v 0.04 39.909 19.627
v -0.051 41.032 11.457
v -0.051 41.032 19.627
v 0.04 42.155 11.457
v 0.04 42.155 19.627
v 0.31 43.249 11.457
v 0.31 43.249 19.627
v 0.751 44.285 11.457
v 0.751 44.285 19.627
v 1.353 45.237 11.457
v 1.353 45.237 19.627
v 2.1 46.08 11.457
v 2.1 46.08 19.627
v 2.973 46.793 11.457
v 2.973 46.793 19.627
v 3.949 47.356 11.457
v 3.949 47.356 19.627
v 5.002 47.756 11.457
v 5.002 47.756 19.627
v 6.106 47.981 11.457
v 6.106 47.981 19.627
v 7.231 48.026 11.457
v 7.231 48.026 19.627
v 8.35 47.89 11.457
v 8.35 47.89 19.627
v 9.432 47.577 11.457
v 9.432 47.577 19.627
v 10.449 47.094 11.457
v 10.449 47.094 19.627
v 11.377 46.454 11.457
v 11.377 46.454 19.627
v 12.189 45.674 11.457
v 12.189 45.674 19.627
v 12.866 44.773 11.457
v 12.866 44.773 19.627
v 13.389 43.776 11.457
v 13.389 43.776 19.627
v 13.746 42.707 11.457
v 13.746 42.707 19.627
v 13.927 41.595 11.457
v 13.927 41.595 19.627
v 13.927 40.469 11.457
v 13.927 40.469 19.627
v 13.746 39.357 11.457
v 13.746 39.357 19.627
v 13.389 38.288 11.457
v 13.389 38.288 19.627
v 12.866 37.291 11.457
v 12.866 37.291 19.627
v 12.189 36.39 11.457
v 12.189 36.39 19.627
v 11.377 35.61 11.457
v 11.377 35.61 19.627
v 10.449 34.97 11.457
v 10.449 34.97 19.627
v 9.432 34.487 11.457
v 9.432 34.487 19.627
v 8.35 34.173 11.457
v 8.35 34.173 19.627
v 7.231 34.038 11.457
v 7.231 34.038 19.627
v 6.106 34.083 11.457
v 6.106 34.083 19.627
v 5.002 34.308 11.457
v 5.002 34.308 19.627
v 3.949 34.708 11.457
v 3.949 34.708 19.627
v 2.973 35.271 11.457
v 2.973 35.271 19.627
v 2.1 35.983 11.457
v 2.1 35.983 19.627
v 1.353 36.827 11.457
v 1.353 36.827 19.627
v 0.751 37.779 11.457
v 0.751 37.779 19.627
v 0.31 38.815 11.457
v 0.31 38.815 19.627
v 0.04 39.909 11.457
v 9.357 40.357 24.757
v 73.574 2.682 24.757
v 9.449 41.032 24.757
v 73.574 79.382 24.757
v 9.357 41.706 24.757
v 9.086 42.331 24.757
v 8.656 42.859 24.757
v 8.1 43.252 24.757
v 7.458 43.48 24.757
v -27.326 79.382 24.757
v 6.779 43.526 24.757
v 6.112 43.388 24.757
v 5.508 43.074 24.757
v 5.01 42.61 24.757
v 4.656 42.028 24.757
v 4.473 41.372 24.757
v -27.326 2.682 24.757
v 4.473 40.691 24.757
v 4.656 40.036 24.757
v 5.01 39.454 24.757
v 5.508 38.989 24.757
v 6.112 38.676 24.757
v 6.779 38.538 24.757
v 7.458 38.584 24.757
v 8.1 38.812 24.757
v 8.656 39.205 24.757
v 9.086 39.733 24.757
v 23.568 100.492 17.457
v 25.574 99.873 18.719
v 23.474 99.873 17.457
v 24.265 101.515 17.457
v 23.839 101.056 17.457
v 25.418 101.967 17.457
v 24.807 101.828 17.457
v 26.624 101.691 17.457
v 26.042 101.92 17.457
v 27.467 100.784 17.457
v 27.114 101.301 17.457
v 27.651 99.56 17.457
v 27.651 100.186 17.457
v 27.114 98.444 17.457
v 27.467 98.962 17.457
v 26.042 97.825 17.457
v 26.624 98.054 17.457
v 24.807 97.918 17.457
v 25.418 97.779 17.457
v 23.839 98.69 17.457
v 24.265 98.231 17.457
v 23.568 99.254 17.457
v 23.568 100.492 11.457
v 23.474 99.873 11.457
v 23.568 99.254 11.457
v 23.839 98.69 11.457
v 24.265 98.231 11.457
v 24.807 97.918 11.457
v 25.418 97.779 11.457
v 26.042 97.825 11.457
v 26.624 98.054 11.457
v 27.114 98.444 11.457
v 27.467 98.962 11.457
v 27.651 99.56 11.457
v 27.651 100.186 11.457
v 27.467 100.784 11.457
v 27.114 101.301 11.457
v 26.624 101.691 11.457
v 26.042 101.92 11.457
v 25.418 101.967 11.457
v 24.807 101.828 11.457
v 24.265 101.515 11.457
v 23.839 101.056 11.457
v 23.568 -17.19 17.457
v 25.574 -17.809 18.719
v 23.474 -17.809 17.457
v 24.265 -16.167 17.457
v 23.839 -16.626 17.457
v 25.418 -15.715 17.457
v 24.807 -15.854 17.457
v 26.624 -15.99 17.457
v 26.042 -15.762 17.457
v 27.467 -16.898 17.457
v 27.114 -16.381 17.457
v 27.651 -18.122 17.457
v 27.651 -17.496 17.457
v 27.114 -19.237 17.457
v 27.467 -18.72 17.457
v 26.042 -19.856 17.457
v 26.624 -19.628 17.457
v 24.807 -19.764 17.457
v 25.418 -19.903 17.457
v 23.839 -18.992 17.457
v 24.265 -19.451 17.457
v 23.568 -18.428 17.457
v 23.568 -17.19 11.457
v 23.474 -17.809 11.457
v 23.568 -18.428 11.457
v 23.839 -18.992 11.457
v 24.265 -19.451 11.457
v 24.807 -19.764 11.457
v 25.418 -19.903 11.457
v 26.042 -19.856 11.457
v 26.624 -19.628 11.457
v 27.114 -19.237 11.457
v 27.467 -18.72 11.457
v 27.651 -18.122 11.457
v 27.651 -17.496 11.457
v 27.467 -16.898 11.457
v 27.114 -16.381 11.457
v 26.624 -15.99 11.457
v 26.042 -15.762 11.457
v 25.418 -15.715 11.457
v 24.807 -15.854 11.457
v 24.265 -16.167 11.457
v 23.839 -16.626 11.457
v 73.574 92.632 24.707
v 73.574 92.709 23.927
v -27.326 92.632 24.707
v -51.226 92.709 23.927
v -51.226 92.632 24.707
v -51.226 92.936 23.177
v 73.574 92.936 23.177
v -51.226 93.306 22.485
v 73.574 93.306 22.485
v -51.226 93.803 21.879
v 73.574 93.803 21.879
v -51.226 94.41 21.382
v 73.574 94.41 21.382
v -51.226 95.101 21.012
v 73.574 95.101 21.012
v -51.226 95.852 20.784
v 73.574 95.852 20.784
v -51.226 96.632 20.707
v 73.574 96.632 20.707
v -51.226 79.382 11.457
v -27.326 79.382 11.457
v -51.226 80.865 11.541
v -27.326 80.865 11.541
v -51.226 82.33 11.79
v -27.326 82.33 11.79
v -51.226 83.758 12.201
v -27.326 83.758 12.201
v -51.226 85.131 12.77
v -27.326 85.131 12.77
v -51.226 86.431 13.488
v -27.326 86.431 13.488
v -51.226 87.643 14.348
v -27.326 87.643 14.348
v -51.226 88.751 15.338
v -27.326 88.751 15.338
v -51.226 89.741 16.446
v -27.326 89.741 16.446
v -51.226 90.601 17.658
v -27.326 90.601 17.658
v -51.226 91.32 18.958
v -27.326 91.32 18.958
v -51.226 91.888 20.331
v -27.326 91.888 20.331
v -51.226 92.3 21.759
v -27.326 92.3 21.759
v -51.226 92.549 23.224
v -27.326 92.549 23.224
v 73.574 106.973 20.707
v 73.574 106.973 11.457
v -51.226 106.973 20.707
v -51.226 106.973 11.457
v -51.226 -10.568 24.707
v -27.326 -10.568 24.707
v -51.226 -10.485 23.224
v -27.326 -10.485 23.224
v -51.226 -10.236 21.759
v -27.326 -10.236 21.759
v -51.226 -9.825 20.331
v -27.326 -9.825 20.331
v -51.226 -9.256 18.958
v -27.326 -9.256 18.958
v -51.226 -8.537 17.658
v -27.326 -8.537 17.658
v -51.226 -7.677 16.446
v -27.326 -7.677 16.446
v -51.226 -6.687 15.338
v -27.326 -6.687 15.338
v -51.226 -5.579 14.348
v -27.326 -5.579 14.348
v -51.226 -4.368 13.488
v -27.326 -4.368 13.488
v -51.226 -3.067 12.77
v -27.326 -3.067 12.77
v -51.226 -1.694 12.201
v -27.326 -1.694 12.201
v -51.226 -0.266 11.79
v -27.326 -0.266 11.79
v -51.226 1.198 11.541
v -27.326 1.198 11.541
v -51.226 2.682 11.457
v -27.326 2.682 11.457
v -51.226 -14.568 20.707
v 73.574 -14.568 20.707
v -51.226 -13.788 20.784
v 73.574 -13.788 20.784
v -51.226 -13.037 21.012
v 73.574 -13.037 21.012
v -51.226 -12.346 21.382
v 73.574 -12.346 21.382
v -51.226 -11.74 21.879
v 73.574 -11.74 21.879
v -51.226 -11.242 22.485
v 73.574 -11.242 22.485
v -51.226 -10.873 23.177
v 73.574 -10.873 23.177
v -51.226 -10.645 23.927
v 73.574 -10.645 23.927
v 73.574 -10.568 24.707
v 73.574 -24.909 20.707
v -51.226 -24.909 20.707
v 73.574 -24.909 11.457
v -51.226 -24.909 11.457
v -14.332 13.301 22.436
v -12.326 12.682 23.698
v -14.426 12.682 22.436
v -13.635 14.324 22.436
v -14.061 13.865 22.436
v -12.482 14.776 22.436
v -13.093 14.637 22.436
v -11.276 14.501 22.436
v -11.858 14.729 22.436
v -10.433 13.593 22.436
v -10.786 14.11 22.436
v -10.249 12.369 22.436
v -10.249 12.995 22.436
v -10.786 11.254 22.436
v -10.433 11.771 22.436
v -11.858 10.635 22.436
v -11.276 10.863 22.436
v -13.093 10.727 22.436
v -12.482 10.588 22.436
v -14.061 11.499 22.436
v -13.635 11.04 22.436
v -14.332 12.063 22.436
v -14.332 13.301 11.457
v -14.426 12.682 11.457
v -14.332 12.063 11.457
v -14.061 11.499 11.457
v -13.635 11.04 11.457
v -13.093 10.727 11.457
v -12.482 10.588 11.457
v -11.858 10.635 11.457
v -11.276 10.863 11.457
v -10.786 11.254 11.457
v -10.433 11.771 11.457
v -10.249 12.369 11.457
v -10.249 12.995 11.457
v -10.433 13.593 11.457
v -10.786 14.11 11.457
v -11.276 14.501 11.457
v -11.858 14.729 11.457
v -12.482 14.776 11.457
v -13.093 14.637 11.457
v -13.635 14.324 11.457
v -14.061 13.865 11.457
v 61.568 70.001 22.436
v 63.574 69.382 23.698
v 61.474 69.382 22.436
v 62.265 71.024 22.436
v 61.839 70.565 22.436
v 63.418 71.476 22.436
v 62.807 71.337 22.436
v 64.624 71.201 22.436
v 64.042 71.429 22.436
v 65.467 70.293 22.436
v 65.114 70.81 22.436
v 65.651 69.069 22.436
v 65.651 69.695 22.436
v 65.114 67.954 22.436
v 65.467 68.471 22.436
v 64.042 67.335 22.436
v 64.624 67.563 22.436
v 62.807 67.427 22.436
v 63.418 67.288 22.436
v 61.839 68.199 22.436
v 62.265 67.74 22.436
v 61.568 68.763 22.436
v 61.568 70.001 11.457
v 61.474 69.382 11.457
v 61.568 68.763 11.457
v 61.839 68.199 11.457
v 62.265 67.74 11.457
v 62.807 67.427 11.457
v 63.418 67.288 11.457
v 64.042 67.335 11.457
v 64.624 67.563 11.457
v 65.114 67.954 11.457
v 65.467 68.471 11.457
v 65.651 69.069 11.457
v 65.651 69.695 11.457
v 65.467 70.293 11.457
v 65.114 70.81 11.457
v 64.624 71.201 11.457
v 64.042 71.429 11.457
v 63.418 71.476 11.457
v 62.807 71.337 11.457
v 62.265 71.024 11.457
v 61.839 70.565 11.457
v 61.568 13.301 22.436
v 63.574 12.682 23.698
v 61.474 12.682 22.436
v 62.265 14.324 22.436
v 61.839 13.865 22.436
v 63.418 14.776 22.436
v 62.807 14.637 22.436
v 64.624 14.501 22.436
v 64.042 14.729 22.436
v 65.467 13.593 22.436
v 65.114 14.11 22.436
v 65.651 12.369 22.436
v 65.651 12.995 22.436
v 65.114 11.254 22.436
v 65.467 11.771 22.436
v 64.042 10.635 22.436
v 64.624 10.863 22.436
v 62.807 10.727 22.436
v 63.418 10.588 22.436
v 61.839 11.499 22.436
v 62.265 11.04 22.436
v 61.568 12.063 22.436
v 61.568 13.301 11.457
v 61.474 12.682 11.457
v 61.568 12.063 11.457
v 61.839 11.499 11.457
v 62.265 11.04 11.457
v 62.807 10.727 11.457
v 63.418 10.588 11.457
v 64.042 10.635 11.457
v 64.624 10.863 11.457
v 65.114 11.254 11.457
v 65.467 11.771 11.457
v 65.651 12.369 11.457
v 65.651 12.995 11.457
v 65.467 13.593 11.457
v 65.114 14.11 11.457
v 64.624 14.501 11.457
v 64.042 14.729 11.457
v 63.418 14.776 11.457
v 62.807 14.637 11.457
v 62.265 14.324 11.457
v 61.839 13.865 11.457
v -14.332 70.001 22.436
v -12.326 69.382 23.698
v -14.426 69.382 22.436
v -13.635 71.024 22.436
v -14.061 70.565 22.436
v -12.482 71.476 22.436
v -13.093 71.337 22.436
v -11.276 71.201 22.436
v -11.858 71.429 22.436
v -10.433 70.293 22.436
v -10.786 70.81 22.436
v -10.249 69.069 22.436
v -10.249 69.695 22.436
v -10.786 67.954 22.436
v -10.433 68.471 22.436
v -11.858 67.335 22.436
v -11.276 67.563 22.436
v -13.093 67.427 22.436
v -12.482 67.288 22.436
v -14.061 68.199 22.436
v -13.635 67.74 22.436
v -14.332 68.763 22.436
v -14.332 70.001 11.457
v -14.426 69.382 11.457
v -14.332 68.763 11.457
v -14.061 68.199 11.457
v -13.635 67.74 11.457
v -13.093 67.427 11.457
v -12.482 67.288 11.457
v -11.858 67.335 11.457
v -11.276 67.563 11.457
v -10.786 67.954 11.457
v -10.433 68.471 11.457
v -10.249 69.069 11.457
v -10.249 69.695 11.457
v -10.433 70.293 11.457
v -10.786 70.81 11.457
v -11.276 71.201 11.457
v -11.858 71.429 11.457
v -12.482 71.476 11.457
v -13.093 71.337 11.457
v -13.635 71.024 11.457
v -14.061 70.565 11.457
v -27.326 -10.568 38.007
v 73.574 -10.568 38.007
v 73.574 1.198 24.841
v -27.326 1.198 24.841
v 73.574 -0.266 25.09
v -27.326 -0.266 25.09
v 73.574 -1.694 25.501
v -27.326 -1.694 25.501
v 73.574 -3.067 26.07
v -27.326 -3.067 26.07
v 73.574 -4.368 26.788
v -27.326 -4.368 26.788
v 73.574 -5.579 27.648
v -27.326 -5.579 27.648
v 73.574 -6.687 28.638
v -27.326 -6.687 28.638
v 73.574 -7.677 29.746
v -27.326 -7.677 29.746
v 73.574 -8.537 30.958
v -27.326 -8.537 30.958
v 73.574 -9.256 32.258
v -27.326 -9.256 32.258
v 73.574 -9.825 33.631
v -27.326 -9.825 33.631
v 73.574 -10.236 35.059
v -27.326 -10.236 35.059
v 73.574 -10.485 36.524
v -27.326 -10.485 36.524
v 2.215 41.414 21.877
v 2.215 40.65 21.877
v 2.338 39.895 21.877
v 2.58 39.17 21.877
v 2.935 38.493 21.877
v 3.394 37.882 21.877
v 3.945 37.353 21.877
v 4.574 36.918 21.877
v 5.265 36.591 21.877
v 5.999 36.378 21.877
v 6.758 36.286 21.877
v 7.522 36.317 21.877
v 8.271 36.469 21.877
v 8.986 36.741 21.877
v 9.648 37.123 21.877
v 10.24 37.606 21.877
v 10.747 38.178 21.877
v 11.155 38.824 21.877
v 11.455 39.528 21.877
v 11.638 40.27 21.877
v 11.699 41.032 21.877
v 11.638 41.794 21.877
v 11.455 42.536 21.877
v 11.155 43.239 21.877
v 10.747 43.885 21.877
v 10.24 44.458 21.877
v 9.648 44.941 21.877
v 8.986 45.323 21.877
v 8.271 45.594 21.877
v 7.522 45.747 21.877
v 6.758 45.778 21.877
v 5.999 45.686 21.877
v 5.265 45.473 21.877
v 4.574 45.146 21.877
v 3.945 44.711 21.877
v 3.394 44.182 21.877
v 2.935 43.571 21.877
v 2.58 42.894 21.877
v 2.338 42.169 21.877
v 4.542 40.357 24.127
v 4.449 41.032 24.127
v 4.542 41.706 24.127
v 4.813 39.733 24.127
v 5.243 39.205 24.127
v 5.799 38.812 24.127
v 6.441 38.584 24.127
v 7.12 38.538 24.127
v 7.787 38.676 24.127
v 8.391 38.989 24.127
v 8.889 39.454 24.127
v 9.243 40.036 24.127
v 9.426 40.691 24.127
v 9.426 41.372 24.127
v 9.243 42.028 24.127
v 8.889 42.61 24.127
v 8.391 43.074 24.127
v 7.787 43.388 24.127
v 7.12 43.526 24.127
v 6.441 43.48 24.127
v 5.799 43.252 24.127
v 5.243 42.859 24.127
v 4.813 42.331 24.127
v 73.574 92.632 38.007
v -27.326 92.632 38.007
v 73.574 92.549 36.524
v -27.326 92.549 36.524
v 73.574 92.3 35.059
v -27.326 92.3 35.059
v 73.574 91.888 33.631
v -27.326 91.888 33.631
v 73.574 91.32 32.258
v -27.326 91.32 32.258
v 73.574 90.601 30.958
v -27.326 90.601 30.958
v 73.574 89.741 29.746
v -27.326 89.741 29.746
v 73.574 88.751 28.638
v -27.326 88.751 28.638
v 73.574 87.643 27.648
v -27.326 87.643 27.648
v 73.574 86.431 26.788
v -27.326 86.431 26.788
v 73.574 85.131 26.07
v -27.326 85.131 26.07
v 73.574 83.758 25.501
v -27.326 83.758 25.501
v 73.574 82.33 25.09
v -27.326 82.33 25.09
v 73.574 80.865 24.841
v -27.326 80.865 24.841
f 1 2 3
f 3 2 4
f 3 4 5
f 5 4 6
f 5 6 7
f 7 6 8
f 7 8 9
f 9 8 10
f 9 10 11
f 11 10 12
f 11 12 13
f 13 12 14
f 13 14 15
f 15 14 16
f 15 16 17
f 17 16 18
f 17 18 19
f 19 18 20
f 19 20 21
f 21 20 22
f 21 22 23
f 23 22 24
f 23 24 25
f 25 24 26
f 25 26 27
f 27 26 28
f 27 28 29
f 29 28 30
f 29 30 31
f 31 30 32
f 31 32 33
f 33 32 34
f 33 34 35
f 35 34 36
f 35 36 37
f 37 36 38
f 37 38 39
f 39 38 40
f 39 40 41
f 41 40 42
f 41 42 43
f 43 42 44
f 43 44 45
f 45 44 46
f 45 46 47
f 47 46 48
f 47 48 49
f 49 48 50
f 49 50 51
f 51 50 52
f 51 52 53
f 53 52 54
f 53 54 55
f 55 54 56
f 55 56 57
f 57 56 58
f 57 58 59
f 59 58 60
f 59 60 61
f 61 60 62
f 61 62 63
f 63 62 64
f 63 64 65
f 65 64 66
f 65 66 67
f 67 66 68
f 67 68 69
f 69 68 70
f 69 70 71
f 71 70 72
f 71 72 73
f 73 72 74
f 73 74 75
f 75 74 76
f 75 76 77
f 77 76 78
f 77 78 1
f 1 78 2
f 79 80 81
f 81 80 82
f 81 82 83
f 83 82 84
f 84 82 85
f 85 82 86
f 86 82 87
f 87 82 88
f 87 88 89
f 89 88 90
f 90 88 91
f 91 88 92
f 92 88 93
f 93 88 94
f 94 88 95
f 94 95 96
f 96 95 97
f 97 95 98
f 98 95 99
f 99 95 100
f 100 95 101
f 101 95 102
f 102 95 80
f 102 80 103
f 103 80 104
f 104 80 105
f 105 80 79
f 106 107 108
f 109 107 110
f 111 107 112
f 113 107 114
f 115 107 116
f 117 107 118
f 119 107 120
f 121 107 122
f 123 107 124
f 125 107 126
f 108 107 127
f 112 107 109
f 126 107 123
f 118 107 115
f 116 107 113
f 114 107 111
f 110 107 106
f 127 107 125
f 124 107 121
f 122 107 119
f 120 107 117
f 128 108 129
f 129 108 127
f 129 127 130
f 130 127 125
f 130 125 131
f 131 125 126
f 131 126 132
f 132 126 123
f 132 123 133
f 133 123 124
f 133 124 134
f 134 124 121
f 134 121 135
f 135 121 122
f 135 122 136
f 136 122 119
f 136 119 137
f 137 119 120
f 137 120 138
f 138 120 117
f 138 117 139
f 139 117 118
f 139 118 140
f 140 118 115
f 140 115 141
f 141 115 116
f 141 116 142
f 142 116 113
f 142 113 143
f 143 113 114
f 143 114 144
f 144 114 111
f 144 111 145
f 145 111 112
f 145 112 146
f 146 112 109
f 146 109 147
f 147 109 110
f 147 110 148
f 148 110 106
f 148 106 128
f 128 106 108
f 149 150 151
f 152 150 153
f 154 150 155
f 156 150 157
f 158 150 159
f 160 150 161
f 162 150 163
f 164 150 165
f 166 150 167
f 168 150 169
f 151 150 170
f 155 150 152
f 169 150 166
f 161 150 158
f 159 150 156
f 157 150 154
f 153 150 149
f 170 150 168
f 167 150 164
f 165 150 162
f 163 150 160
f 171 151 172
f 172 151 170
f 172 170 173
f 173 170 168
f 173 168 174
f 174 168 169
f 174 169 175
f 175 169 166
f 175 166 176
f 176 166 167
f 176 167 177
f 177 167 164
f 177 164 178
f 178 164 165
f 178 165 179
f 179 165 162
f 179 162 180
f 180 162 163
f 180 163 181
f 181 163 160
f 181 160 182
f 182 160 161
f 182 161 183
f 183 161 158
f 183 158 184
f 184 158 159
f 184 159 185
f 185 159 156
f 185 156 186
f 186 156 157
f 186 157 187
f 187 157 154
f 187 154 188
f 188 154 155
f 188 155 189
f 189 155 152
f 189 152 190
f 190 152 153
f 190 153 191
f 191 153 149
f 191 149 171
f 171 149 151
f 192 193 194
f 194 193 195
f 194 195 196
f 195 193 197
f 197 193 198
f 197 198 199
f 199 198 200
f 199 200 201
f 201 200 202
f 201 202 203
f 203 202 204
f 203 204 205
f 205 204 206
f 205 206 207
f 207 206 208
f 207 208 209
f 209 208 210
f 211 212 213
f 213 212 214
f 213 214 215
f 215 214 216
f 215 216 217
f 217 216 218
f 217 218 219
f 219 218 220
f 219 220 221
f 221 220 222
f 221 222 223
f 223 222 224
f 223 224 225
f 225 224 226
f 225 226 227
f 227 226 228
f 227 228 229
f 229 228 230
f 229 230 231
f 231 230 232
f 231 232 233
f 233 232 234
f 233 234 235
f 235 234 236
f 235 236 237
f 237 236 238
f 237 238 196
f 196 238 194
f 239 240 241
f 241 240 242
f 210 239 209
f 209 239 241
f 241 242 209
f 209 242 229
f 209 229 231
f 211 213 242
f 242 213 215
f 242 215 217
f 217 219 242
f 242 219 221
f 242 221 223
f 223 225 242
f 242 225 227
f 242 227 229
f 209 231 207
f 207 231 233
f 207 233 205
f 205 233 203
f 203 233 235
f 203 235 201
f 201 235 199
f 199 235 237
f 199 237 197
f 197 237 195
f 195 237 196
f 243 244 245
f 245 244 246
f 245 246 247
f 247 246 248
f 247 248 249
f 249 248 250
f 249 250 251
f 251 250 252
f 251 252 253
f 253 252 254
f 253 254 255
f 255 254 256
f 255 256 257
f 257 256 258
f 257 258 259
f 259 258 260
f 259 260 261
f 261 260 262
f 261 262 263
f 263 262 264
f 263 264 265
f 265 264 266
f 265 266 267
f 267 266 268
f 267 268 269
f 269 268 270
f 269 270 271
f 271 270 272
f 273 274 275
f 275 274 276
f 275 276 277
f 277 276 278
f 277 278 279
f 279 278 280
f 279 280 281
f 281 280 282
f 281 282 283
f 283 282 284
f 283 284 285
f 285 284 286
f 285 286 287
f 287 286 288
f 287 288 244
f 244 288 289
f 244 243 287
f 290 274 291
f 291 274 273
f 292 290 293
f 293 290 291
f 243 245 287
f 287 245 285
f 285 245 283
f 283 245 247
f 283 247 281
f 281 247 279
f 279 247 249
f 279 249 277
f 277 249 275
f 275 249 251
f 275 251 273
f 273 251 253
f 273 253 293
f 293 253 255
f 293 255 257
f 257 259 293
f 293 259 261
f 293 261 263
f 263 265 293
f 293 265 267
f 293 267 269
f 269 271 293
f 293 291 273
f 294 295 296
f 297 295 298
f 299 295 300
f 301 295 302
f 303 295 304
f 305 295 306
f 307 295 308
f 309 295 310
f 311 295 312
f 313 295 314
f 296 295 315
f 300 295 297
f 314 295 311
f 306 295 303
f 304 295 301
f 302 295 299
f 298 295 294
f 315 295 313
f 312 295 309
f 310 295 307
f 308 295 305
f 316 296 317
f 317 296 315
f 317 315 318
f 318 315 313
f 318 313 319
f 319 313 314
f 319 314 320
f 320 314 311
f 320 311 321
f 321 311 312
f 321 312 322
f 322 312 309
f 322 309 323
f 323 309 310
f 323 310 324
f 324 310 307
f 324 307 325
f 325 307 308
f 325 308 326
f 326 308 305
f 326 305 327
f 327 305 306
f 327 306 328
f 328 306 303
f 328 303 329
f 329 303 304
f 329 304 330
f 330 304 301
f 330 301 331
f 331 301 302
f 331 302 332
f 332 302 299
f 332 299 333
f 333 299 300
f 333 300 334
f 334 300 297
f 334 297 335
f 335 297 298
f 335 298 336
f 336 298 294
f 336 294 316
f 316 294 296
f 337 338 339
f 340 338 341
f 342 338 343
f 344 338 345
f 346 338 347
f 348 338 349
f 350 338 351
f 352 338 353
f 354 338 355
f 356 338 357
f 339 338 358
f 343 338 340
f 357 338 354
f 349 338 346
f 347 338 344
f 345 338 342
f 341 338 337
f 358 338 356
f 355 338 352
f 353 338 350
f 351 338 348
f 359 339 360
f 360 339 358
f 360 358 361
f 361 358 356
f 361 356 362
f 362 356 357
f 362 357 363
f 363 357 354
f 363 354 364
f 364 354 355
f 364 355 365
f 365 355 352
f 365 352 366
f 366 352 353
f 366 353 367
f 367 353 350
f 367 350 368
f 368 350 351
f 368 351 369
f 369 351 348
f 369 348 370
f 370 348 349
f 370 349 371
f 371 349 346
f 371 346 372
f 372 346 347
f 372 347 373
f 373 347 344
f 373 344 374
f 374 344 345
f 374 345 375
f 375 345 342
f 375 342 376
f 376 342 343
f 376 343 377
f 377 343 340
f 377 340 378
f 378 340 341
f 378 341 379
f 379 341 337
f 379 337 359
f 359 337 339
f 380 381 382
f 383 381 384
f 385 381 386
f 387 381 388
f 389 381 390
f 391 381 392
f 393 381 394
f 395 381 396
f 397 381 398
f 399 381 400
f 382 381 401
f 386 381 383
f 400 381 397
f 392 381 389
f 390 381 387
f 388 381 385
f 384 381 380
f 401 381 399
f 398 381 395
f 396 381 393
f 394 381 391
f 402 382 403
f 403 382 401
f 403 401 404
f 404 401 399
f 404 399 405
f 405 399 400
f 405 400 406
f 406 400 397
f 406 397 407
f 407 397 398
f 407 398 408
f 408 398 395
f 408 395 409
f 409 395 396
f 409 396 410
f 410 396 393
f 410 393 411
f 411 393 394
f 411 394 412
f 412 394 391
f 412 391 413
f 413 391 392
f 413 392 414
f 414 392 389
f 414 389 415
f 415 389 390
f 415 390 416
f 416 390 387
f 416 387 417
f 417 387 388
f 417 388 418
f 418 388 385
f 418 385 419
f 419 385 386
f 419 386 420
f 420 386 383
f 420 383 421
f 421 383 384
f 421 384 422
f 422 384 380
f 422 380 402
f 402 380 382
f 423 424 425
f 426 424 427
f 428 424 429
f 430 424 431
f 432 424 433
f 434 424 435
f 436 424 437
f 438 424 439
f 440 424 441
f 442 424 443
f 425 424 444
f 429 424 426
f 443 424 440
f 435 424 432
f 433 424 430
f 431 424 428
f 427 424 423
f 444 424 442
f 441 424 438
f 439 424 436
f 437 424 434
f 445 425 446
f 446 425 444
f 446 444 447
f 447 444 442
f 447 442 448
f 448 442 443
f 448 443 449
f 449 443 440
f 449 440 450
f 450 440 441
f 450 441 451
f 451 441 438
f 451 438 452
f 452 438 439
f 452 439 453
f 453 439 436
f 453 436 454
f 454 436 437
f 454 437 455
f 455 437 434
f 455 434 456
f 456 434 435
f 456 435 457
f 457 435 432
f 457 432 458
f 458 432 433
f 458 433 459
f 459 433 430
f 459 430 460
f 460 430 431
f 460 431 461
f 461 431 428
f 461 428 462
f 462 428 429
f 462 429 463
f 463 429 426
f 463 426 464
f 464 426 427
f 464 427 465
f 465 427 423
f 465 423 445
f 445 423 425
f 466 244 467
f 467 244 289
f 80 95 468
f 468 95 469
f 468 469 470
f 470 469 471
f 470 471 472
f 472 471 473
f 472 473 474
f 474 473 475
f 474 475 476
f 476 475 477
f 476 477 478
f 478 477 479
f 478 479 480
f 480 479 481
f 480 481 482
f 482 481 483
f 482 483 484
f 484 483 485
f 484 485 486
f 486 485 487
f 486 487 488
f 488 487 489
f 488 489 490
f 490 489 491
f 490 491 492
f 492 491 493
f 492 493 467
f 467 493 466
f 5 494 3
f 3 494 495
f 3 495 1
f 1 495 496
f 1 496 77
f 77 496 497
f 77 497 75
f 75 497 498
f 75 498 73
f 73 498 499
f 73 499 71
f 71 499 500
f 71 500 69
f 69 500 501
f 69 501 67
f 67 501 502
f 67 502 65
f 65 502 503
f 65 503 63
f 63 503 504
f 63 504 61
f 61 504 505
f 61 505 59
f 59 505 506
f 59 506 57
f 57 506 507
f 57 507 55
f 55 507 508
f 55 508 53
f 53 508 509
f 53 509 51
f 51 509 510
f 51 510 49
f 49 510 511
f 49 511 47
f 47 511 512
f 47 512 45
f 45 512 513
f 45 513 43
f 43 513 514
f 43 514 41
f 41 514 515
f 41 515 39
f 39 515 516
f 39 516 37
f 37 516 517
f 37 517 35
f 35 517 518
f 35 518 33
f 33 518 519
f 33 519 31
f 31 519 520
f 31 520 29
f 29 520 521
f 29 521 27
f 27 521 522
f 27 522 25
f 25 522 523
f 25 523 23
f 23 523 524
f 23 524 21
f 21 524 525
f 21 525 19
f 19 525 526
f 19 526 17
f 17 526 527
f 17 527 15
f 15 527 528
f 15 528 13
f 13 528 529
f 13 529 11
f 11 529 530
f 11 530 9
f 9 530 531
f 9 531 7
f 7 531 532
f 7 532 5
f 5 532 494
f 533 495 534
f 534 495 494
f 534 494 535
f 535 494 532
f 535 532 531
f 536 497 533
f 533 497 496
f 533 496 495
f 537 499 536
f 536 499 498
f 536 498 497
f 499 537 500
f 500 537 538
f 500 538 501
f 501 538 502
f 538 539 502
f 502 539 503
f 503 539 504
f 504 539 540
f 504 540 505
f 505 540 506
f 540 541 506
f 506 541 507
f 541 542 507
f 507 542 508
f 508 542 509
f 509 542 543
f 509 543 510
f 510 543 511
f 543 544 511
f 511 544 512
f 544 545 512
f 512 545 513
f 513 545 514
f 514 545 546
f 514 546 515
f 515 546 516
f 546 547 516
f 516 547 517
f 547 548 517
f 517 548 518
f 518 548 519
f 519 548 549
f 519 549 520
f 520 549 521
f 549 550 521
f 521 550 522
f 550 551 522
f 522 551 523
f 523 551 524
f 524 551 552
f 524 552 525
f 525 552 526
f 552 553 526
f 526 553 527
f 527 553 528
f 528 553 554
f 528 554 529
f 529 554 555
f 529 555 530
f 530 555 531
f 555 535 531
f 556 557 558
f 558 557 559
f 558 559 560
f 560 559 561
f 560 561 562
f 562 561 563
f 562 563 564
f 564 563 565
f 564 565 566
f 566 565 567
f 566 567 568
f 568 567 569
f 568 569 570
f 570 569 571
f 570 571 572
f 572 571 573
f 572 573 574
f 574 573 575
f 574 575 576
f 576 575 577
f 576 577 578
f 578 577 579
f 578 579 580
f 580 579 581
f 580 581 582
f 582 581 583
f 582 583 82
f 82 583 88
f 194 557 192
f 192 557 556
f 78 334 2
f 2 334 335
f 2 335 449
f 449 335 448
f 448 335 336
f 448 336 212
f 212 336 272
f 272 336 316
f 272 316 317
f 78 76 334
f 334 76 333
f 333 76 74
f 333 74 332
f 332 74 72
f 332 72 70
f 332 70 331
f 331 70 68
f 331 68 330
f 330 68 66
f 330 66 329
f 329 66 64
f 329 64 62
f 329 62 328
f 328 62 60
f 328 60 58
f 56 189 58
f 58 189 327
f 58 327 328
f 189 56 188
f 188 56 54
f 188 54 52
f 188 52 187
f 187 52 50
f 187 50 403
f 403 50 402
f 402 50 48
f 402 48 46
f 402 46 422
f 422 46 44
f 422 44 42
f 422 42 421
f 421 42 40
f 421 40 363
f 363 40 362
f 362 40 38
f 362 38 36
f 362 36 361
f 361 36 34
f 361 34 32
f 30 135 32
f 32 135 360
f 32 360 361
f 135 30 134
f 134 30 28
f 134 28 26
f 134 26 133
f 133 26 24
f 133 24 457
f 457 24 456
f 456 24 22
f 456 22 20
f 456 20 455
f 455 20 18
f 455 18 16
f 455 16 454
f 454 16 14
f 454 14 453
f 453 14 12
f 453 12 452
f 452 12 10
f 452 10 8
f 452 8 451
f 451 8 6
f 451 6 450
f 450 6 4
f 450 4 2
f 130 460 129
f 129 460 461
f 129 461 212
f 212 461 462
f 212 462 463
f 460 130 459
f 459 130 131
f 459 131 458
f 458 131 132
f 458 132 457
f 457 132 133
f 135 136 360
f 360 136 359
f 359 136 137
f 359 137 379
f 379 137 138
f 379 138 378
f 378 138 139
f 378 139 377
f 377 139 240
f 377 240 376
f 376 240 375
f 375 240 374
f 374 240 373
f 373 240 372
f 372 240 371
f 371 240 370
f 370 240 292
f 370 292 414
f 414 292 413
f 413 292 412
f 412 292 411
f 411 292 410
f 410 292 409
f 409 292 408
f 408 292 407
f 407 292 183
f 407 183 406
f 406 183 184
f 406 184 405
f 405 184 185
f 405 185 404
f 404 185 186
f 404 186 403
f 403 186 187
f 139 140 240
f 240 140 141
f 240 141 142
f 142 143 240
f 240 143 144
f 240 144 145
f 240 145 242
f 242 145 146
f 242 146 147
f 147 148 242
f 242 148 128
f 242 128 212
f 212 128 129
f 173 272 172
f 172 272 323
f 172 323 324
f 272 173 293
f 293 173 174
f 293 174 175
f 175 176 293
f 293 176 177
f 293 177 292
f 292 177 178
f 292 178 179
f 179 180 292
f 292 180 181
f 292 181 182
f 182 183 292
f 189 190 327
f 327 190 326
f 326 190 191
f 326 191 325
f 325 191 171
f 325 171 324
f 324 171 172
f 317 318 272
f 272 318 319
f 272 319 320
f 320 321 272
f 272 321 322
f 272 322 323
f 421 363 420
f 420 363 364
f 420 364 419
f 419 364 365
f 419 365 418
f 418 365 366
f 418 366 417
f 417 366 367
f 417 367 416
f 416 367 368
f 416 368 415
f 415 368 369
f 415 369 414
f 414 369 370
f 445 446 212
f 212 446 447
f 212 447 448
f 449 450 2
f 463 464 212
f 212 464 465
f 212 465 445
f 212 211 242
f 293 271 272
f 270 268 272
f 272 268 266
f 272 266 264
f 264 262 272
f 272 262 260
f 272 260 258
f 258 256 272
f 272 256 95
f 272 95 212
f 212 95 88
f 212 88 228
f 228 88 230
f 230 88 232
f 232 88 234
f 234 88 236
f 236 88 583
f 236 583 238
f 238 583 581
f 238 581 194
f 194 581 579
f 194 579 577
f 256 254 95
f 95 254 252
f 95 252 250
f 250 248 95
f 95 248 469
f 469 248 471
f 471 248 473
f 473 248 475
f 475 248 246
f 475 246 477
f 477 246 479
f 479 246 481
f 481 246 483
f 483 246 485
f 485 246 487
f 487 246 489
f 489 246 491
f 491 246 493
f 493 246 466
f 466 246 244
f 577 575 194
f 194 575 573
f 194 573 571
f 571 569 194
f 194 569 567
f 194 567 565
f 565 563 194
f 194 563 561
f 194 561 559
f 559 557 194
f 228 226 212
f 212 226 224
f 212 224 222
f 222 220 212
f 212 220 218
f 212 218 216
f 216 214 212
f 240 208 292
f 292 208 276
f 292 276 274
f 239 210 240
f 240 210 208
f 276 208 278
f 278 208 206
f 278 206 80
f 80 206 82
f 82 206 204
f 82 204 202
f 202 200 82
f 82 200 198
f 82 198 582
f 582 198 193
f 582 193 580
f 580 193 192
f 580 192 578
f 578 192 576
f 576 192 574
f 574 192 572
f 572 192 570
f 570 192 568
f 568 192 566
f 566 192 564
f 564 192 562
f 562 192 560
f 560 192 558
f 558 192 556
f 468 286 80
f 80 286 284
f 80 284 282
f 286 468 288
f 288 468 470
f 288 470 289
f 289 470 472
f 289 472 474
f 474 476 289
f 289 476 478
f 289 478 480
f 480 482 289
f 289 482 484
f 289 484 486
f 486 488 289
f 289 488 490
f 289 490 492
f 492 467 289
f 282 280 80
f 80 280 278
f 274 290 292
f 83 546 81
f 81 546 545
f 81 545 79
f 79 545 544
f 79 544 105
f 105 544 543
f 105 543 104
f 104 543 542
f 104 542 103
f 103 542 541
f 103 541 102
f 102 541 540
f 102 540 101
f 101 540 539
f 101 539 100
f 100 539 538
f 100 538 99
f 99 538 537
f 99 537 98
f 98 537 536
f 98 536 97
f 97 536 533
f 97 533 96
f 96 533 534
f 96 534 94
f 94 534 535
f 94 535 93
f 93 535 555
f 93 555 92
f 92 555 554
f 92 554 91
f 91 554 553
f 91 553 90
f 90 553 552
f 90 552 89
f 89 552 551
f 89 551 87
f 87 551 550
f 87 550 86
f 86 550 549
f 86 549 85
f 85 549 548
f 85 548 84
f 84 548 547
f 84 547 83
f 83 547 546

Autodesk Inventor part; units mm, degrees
ref_plane "YZ Plane" through (0, 0, 0) normal (1, 0, 0) x (0, 1, 0)
ref_plane "作業平面1" through (-27.3255, 41.0319, 38.0074) normal (1, 0, 0) x (0, 1, 0)
sketch "スケッチ2" plane through (-27.3255, 41.0319, 38.0074) normal (1, 0, 0) x (0, 1, 0)
  arc A0 (-51.6, -13.3) -> (-38.35, -26.55) centre (-38.35, -13.3) ccw
  line L0 (-51.6, 0) -> (-51.6, -13.3)
  arc A1 (-51.6, 0) -> (-38.35, -13.25) centre (-38.35, 0) ccw
  line L1 (38.35, -13.25) -> (-38.35, -13.25)
  arc A2 (38.35, -13.25) -> (51.6, 0) centre (38.35, 0) ccw
  line L2 (51.6, -13.3) -> (51.6, 0)
  arc A3 (38.35, -26.55) -> (51.6, -13.3) centre (38.35, -13.3) ccw
  line L3 (-38.35, -26.55) -> (38.35, -26.55)
  point P0 (-41.0319, -38.0074)
extrude "押し出し1" add sketch "スケッチ2" along normal blind 100.9
sketch "スケッチ3" plane through (-27.3255, 2.6819, 11.4574) normal (0, 0, -1) x (-1, 0, 0)
  line L0 (0, 76.7) -> (-100.9, 76.7) projected
  line L1 (-100.9, 0) -> (-100.9, 76.7) projected
  line L2 (0, 0) -> (-100.9, 0) projected
  line L3 (0, 76.7) -> (0, 0) projected
  point P0 (-27.3255, -2.6819)
  point P1 (-90.9, 66.7)
  point P2 (-90.9, 10)
  point P3 (-15, 10)
  point P4 (-15, 66.7)
  dimension "d2" = 10
  dimension "d3" = 10
  dimension "d4" = 10
  dimension "d5" = 10
  dimension "d6" = 10
  dimension "d7" = 15
  dimension "d8" = 15
  dimension "d9" = 10
hole "穴2" at (63.5745, 69.3819, 11.4574) at (63.5745, 12.6819, 11.4574) at (-12.3255, 12.6819, 11.4574) at (-12.3255, 69.3819, 11.4574) direction (0, 0, 1) diameter 4.2 depth 10.979 tip angle 118
sketch "スケッチ4" plane through (-27.3255, 2.6819, 11.4574) normal (0, 0, -1) x (-1, 0, 0)
  circle A0 centre (-34.275, 38.35) radius 4.175 projected
  circle A1 centre (-34.275, 38.35) radius 3.35
  point P0 (-27.3255, -2.6819)
  dimension "d24" = 6.7
  dimension "d44" = 8.35
hole "穴3" [suppressed]
sketch "スケッチ6" plane through (73.5745, 41.0319, 38.0074) normal (1, 0, 0) x (0, 0, -1)
  line L0 (0, -51.6) -> (13.3, -51.6) projected
  line L1 (13.3, 51.6) -> (0, 51.6) projected
  line L2 (26.55, -38.35) -> (26.55, 38.35) projected
  arc A0 (13.3, 51.6) -> (17.3, 55.6) centre (13.3, 55.6) ccw
  line L3 (17.3, 55.6) -> (17.3, 65.9409)
  line L4 (17.3, 65.9409) -> (26.55, 65.9409)
  line L5 (26.55, 65.9409) -> (26.55, 38.35)
  line L6 (26.55, 0) -> (-17.064, 0) construction
  arc A1 (17.3, -55.6) -> (13.3, -51.6) centre (13.3, -55.6) ccw
  line L7 (17.3, -55.6) -> (17.3, -65.9409)
  line L8 (17.3, -65.9409) -> (26.55, -65.9409)
  line L9 (26.55, -65.9409) -> (26.55, -38.35)
  arc A2 (13.3, -51.6) -> (26.55, -38.35) centre (13.3, -38.35) ccw projected
  arc A3 (26.55, 38.35) -> (13.3, 51.6) centre (13.3, 38.35) ccw projected
  point P0 (38.0074, -41.0319)
  dimension "d32" = 90
  dimension "d34" = 4
  dimension "d35" = 38.35
extrude "押し出し2" add sketch "スケッチ6" against normal blind 124.8
ref_plane "作業平面2" through (73.5745, 41.0319, 11.4574) normal (0, -1, 0) x (1, 0, 0)
sketch "スケッチ8" plane through (-27.3255, 2.6819, 11.4574) normal (0, 0, -1) x (-1, 0, 0)
  circle A0 centre (-34.275, 38.35) radius 4.175
  circle A1 centre (-34.275, 38.35) radius 4.175
  circle A2 centre (-34.275, 38.35) radius 4.175
  circle A3 centre (-34.275, 38.35) radius 3.375
  circle A4 centre (-34.275, 38.35) radius 6.7437
  circle A5 centre (-34.275, 38.35) radius 7
  point P0 (-27.3255, -2.6819)
  point P1 (-34.275, 38.35)
  dimension "d65" = 14
sketch "スケッチ9" plane through (-27.3255, 2.6819, 11.4574) normal (0, 0, -1) x (-1, 0, 0)
  circle A0 centre (-15, 66.7) radius 2.1 projected
  circle A1 centre (-15, 10) radius 2.1 projected
  circle A2 centre (-90.9, 10) radius 2.1 projected
  circle A3 centre (-90.9, 66.7) radius 2.1 projected
  line L0 (48.86, 38.35) -> (-125.86, 38.35) projected
  line L1 (-100.9, 104.2909) -> (23.9, 104.2909) projected
  line L2 (0, 89.95) -> (-100.9, 89.95) projected
  point P0 (-27.3255, -2.6819)
  point P1 (-52.9, 97.1909)
  point P2 (-52.9, -20.4909)
  dimension "d54" = 38
  dimension "d55" = 7.1
hole "穴5" at (25.5745, 99.8728, 11.4574) at (25.5745, -17.809, 11.4574) direction (0, 0, 1) diameter 4.2 depth 6 tip angle 118
extrude "押し出し4" cut sketch "スケッチ8" against normal blind 8.17 contours A0 | A3 | A4 | A5
sketch "スケッチ11" plane through (6.9495, 41.0319, 19.6274) normal (0, 0, -1) x (-1, 0, 0)
  circle A0 centre (0, 0) radius 7 projected
  point P0 (6.9495, -41.0319)
hole "穴6" at (6.9495, 41.0319, 19.6274) direction (0, 0, 1) diameter 5 depth 6 tip angle 118 countersink diameter 14 countersink angle 90
properties part number "AzureKinectCradle"
